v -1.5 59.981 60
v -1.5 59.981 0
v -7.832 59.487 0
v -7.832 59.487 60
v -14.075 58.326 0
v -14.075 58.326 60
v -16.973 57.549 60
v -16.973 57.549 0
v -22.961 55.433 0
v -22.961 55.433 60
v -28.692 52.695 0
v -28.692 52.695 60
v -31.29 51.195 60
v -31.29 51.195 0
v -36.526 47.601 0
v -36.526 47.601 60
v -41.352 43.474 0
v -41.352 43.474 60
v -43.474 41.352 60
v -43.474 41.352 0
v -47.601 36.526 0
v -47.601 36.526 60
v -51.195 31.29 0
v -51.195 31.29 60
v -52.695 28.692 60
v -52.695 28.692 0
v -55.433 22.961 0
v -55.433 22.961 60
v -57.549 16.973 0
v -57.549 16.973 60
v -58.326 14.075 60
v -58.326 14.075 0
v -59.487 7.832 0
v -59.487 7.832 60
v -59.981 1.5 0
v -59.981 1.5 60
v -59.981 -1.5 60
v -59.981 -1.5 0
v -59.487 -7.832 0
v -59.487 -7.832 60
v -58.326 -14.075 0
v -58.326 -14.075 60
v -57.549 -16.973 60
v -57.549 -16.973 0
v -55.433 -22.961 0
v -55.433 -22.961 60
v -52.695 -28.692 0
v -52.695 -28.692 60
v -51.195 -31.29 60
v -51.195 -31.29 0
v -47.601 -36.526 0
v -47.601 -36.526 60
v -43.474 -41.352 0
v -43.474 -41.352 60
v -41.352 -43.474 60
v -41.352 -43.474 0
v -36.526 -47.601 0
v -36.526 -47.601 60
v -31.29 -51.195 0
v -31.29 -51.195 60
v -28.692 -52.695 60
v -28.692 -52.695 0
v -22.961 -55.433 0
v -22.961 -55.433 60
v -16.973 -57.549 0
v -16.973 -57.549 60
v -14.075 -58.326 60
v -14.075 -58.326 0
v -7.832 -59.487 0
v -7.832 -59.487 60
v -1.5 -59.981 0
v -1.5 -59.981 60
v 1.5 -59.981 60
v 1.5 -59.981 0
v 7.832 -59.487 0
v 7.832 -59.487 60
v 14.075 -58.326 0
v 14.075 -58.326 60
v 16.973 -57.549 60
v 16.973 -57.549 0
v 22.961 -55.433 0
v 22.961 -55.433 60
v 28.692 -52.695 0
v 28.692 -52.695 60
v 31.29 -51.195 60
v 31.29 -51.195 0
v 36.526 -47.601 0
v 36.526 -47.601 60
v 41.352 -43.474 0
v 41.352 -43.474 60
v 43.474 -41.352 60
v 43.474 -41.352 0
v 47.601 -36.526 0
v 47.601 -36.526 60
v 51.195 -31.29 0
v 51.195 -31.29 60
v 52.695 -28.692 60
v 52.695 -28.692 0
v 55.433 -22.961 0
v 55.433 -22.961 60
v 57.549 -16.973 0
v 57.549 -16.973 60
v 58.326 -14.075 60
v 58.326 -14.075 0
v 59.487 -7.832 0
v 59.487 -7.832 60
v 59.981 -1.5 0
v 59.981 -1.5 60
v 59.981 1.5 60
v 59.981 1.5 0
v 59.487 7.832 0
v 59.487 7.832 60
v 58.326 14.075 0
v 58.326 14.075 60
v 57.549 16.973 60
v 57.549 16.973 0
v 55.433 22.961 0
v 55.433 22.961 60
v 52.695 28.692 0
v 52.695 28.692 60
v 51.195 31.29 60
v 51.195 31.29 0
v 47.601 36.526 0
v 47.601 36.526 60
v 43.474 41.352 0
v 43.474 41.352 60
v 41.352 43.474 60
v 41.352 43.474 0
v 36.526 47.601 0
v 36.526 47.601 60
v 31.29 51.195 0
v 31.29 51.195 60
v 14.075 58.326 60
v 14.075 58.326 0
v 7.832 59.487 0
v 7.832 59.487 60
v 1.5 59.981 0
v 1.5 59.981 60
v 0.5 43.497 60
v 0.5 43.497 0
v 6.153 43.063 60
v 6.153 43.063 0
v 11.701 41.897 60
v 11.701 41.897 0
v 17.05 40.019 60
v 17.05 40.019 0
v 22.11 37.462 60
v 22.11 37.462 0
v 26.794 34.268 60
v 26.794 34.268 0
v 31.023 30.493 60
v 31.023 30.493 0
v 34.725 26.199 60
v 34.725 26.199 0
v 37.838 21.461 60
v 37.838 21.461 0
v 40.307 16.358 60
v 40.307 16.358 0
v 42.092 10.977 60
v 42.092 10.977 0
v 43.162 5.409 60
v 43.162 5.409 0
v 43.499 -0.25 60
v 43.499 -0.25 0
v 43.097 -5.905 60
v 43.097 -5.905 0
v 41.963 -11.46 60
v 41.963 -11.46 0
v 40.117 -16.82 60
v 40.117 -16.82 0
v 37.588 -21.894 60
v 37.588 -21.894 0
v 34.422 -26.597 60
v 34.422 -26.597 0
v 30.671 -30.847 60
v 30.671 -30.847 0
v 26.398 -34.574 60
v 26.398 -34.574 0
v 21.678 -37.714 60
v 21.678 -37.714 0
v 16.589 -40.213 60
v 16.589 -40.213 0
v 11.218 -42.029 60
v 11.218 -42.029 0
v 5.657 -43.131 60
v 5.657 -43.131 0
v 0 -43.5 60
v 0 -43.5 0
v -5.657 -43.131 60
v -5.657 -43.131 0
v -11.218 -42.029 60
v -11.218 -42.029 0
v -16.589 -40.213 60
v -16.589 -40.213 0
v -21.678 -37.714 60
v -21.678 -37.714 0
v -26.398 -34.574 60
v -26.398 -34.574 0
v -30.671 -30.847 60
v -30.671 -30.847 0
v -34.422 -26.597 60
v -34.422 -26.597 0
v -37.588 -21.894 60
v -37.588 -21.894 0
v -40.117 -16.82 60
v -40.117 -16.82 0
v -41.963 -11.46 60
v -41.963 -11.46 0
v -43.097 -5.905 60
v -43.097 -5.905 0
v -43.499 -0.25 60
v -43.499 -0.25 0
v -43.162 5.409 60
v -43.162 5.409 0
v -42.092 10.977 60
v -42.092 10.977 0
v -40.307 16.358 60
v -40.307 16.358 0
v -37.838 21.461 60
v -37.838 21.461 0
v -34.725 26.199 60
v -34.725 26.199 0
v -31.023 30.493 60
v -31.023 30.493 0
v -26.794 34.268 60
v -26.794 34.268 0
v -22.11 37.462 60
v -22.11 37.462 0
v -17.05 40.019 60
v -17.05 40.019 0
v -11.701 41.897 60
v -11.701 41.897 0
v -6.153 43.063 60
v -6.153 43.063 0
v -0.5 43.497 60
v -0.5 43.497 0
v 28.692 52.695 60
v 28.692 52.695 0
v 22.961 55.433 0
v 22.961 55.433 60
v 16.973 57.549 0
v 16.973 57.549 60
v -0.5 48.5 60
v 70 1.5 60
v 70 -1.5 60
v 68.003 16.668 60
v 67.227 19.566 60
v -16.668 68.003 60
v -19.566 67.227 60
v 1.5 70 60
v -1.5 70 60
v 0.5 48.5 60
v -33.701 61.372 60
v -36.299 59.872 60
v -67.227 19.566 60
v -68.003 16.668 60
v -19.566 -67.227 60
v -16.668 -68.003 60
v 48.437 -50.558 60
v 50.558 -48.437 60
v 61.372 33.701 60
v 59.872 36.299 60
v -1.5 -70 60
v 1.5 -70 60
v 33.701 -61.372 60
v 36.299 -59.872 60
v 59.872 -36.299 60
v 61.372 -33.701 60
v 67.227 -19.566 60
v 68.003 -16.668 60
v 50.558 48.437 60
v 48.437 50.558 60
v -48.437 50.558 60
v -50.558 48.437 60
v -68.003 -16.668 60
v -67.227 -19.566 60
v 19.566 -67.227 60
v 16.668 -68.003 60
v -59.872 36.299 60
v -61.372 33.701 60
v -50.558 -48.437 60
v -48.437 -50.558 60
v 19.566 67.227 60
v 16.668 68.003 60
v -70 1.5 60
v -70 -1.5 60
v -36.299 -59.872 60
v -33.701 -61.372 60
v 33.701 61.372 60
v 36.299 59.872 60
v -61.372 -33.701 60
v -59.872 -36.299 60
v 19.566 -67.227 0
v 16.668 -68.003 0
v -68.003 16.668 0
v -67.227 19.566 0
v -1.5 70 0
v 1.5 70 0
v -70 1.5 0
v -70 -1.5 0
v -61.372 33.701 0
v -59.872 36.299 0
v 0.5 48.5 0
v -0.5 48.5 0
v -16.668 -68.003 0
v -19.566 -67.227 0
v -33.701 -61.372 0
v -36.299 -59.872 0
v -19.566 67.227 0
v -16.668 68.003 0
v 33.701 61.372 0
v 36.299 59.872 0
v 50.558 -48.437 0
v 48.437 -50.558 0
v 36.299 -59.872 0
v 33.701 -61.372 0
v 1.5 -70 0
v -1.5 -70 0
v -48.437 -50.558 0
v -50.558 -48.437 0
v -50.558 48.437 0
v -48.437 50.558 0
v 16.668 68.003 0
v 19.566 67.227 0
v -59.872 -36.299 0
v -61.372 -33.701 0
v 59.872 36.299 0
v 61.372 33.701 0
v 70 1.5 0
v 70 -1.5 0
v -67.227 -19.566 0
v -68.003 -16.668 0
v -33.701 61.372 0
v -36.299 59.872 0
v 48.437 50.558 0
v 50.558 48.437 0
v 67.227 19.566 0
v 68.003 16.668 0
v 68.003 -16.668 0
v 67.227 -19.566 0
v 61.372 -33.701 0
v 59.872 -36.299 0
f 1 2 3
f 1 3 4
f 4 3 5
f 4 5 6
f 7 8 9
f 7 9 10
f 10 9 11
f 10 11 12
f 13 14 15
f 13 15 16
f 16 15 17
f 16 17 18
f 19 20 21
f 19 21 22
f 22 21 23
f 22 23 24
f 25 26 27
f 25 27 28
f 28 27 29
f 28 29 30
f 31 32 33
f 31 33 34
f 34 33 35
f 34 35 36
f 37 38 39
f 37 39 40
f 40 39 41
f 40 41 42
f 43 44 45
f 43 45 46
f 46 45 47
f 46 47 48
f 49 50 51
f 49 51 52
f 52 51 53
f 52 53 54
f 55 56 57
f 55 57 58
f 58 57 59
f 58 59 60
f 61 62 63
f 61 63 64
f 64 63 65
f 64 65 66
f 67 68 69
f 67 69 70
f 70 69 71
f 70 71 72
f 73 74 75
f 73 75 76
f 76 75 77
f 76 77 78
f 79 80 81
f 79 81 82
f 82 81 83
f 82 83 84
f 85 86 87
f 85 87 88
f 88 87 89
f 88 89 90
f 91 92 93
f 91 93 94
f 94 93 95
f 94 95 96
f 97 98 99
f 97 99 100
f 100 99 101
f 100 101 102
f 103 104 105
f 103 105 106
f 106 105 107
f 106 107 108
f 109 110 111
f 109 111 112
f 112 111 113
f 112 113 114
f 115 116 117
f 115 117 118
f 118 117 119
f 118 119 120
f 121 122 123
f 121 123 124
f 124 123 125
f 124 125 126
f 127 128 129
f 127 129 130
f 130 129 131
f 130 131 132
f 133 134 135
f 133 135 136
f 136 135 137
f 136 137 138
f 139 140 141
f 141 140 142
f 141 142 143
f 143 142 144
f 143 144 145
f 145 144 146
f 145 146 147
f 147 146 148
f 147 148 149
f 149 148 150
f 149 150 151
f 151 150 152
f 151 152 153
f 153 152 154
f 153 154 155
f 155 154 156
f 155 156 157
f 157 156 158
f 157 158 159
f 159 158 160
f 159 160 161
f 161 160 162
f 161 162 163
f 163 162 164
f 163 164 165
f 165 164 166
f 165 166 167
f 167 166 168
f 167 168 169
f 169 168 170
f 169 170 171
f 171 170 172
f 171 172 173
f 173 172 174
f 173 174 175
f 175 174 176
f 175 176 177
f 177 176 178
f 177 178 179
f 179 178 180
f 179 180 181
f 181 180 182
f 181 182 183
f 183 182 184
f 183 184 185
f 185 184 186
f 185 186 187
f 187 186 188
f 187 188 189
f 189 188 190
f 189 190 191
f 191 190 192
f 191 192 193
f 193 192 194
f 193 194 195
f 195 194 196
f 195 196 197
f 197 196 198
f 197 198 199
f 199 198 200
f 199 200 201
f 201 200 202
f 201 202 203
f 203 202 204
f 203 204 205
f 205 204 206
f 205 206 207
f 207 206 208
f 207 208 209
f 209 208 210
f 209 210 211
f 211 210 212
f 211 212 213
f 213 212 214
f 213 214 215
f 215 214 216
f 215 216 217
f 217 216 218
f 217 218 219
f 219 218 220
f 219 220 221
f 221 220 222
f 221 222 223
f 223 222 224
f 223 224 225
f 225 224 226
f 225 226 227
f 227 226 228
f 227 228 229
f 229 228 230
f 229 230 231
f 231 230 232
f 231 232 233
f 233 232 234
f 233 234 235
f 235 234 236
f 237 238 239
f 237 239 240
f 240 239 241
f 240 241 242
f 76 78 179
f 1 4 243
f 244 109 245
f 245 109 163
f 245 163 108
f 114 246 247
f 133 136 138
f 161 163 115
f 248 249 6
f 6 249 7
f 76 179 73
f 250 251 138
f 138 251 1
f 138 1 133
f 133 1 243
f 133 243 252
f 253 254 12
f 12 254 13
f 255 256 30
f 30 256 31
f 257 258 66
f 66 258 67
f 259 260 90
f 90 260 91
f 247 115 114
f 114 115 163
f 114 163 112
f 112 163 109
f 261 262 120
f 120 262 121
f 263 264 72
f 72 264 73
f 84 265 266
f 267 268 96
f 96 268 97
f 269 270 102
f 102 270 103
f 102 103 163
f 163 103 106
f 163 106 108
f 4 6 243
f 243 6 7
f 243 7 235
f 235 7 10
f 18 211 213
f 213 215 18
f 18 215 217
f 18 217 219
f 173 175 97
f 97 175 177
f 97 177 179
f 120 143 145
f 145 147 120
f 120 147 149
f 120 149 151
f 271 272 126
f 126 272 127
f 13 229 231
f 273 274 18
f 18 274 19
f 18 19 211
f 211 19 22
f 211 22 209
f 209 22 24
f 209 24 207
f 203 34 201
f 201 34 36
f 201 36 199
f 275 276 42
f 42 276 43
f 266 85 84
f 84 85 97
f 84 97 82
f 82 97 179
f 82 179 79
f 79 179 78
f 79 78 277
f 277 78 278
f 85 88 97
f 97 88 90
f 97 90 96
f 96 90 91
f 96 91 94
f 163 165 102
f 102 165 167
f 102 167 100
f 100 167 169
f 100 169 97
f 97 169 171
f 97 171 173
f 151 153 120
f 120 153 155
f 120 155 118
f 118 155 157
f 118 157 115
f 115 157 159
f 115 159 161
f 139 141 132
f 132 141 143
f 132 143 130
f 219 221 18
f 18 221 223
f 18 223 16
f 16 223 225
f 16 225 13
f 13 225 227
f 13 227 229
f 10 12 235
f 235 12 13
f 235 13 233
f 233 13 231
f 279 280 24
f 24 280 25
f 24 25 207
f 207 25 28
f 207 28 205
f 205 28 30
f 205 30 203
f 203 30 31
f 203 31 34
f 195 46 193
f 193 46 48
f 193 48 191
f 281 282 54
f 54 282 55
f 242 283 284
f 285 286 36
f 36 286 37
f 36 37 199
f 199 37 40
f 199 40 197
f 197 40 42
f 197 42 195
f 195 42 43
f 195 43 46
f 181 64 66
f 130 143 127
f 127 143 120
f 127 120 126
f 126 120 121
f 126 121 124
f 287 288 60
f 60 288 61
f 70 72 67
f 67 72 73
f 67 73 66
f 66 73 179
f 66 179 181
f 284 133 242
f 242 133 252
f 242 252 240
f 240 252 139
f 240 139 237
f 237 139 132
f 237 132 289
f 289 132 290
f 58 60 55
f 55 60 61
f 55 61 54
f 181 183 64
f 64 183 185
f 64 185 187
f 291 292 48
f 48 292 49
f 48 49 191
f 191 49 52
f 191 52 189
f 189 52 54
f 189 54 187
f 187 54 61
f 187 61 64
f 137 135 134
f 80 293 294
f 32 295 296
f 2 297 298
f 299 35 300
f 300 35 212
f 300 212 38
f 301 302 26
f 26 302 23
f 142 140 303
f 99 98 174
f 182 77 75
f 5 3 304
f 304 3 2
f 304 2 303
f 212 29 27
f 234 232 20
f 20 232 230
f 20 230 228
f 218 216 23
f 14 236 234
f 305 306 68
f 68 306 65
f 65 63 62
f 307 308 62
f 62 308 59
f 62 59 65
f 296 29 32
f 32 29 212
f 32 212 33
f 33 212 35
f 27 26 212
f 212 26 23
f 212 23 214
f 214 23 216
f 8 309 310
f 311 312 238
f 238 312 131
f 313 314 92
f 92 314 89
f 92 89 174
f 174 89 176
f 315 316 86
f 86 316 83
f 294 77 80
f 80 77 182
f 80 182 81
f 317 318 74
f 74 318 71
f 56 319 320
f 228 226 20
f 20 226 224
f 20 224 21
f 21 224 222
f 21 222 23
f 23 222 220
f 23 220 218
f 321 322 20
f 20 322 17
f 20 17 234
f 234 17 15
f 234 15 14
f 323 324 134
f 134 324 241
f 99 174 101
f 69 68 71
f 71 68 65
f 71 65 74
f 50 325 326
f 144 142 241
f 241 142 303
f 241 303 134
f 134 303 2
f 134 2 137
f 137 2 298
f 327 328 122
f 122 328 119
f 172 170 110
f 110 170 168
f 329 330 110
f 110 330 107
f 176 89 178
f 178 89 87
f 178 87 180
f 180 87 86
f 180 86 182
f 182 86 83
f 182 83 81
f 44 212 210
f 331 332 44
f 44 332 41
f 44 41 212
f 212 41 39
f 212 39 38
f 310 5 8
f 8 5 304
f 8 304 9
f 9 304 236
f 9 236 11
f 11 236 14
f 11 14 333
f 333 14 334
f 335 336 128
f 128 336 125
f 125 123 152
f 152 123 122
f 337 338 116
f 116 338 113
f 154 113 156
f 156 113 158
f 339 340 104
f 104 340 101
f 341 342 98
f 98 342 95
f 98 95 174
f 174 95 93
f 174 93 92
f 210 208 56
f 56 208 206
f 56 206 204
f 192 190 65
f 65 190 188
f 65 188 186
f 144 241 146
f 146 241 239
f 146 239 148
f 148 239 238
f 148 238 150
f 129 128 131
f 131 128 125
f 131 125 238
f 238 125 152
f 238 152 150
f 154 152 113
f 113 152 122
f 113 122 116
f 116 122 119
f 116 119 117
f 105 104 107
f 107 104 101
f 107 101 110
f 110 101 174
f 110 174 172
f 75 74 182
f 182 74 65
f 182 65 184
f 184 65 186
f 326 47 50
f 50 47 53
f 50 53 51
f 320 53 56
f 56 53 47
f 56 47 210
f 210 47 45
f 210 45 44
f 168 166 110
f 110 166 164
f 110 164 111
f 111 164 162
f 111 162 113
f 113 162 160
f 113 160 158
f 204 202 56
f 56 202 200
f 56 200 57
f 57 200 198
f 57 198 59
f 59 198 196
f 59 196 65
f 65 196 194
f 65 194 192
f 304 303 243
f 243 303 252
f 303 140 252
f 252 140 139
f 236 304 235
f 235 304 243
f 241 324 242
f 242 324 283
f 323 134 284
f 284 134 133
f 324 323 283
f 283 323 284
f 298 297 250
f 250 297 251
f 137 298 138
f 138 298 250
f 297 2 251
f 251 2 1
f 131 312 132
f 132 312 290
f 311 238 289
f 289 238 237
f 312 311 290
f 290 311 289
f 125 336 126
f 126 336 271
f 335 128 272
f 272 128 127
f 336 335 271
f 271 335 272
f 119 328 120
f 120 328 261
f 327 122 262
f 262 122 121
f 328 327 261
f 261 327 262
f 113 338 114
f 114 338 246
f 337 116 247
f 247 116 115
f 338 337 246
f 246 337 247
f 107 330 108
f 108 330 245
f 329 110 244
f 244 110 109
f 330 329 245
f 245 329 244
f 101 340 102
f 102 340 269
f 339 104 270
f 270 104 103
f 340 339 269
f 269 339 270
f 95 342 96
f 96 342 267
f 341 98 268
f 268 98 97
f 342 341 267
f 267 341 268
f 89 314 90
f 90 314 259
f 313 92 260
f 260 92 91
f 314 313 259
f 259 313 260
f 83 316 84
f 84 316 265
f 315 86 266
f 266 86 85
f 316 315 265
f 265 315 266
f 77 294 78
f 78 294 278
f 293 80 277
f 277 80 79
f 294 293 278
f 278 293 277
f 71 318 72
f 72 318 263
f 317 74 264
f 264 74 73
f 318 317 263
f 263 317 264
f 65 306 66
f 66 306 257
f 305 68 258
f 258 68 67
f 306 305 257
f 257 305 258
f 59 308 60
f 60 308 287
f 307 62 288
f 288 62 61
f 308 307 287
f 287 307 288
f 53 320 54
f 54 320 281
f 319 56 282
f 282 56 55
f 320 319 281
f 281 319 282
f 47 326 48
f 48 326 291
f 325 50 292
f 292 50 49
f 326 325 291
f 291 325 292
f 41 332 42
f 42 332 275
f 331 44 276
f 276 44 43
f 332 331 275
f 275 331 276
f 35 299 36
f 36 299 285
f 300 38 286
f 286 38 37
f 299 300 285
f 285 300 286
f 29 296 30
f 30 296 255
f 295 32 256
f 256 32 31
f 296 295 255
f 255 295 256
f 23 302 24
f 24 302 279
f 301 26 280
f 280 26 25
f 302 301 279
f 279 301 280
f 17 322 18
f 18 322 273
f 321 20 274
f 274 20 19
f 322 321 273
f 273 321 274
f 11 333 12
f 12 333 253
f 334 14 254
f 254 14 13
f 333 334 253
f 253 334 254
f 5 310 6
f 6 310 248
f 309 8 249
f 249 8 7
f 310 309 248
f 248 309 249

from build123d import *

# Parameters (mm, degrees)
SKETCH1_R           = 60
SKETCH1_R_2         = 43.5
EXTRUSION1_DEPTH    = 60
EXTRUSION3_START    = -60
EXTRUSION3_DEPTH    = 60
BOSS_EXTRUDE2_START = -60
BOSS_EXTRUDE2_DEPTH = 60


with BuildPart() as part:
    # Sketch1 → Extrusion1 (new body)
    with BuildSketch(Plane.XY):
        Circle(SKETCH1_R)
        Circle(SKETCH1_R_2, mode=Mode.SUBTRACT)
    extrude(amount=EXTRUSION1_DEPTH)

    # Sketch3 → Extrusion3 (cut)
    with BuildSketch(Plane.XY.offset(60).offset(EXTRUSION3_START)):
        with BuildLine():
            Line((-0.5, 48.5), (-0.5, 43.497126342))
            ThreePointArc((-0.5, 43.497126342), (0, 43.5), (0.5, 43.497126342))
            Line((0.5, 43.497126342), (0.5, 48.5))
            Line((0.5, 48.5), (-0.5, 48.5))
        make_face()
    extrude(amount=EXTRUSION3_DEPTH, mode=Mode.SUBTRACT)

    # Sketch5 → Boss-Extrude2 (add)
    with BuildSketch(Plane.XY.offset(60).offset(BOSS_EXTRUDE2_START)):
        with BuildLine():
            Line((14.075400351, 58.325664205), (16.668444418, 68.003036408))
            Line((16.668444418, 68.003036408), (19.566221897, 67.226579273))
            Line((19.566221897, 67.226579273), (16.97317783, 57.54920707))
            ThreePointArc((16.97317783, 57.54920707), (15.529142706, 57.955549577), (14.075400351, 58.325664205))
        make_face()
        with BuildLine():
            Line((1.5, 59.981247069), (1.5, 70))
            Line((1.5, 70), (-1.5, 70))
            Line((-1.5, 70), (-1.5, 59.981247069))
            ThreePointArc((-1.5, 59.981247069), (0, 60), (1.5, 59.981247069))
        make_face()
        with BuildLine():
            Line((28.691585429, 52.695283713), (33.700961894, 61.371778265))
            Line((33.700961894, 61.371778265), (36.299038106, 59.871778265))
            Line((36.299038106, 59.871778265), (31.28966164, 51.195283713))
            ThreePointArc((31.28966164, 51.195283713), (30, 51.961524227), (28.691585429, 52.695283713))
        make_face()
        with BuildLine():
            Line((41.352486375, 43.473806719), (48.436814511, 50.558134855))
            Line((48.436814511, 50.558134855), (50.558134855, 48.436814511))
            Line((50.558134855, 48.436814511), (43.473806719, 41.352486375))
            ThreePointArc((43.473806719, 41.352486375), (42.426406871, 42.426406871), (41.352486375, 43.473806719))
        make_face()
        with BuildLine():
            Line((51.195283713, 31.28966164), (59.871778265, 36.299038106))
            Line((59.871778265, 36.299038106), (61.371778265, 33.700961894))
            Line((61.371778265, 33.700961894), (52.695283713, 28.691585429))
            ThreePointArc((52.695283713, 28.691585429), (51.961524227, 30), (51.195283713, 31.28966164))
        make_face()
        with BuildLine():
            Line((57.54920707, 16.97317783), (67.226579273, 19.566221897))
            Line((67.226579273, 19.566221897), (68.003036408, 16.668444418))
            Line((68.003036408, 16.668444418), (58.325664205, 14.075400351))
            ThreePointArc((58.325664205, 14.075400351), (57.955549577, 15.529142706), (57.54920707, 16.97317783))
        make_face()
        with BuildLine():
            Line((59.981247069, 1.5), (70, 1.5))
            Line((70, 1.5), (70, -1.5))
            Line((70, -1.5), (59.981247069, -1.5))
            ThreePointArc((59.981247069, -1.5), (60, 0), (59.981247069, 1.5))
        make_face()
        with BuildLine():
            Line((58.325664205, -14.075400351), (68.003036408, -16.668444418))
            Line((68.003036408, -16.668444418), (67.226579273, -19.566221897))
            Line((67.226579273, -19.566221897), (57.54920707, -16.97317783))
            ThreePointArc((57.54920707, -16.97317783), (57.955549577, -15.529142706), (58.325664205, -14.075400351))
        make_face()
        with BuildLine():
            Line((52.695283713, -28.691585429), (61.371778265, -33.700961894))
            Line((61.371778265, -33.700961894), (59.871778265, -36.299038106))
            Line((59.871778265, -36.299038106), (51.195283713, -31.28966164))
            ThreePointArc((51.195283713, -31.28966164), (51.961524227, -30), (52.695283713, -28.691585429))
        make_face()
        with BuildLine():
            Line((43.473806719, -41.352486375), (50.558134855, -48.436814511))
            Line((50.558134855, -48.436814511), (48.436814511, -50.558134855))
            Line((48.436814511, -50.558134855), (41.352486375, -43.473806719))
            ThreePointArc((41.352486375, -43.473806719), (42.426406871, -42.426406871), (43.473806719, -41.352486375))
        make_face()
        with BuildLine():
            Line((31.28966164, -51.195283713), (36.299038106, -59.871778265))
            Line((36.299038106, -59.871778265), (33.700961894, -61.371778265))
            Line((33.700961894, -61.371778265), (28.691585429, -52.695283713))
            ThreePointArc((28.691585429, -52.695283713), (30, -51.961524227), (31.28966164, -51.195283713))
        make_face()
        with BuildLine():
            Line((16.97317783, -57.54920707), (19.566221897, -67.226579273))
            Line((19.566221897, -67.226579273), (16.668444418, -68.003036408))
            Line((16.668444418, -68.003036408), (14.075400351, -58.325664205))
            ThreePointArc((14.075400351, -58.325664205), (15.529142706, -57.955549577), (16.97317783, -57.54920707))
        make_face()
        with BuildLine():
            Line((1.5, -59.981247069), (1.5, -70))
            Line((1.5, -70), (-1.5, -70))
            Line((-1.5, -70), (-1.5, -59.981247069))
            ThreePointArc((-1.5, -59.981247069), (0, -60), (1.5, -59.981247069))
        make_face()
        with BuildLine():
            Line((-14.075400351, -58.325664205), (-16.668444418, -68.003036408))
            Line((-16.668444418, -68.003036408), (-19.566221897, -67.226579273))
            Line((-19.566221897, -67.226579273), (-16.97317783, -57.54920707))
            ThreePointArc((-16.97317783, -57.54920707), (-15.529142706, -57.955549577), (-14.075400351, -58.325664205))
        make_face()
        with BuildLine():
            Line((-28.691585429, -52.695283713), (-33.700961894, -61.371778265))
            Line((-33.700961894, -61.371778265), (-36.299038106, -59.871778265))
            Line((-36.299038106, -59.871778265), (-31.28966164, -51.195283713))
            ThreePointArc((-31.28966164, -51.195283713), (-30, -51.961524227), (-28.691585429, -52.695283713))
        make_face()
        with BuildLine():
            Line((-41.352486375, -43.473806719), (-48.436814511, -50.558134855))
            Line((-48.436814511, -50.558134855), (-50.558134855, -48.436814511))
            Line((-50.558134855, -48.436814511), (-43.473806719, -41.352486375))
            ThreePointArc((-43.473806719, -41.352486375), (-42.426406871, -42.426406871), (-41.352486375, -43.473806719))
        make_face()
        with BuildLine():
            Line((-51.195283713, -31.28966164), (-59.871778265, -36.299038106))
            Line((-59.871778265, -36.299038106), (-61.371778265, -33.700961894))
            Line((-61.371778265, -33.700961894), (-52.695283713, -28.691585429))
            ThreePointArc((-52.695283713, -28.691585429), (-51.961524227, -30), (-51.195283713, -31.28966164))
        make_face()
        with BuildLine():
            Line((-57.54920707, -16.97317783), (-67.226579273, -19.566221897))
            Line((-67.226579273, -19.566221897), (-68.003036408, -16.668444418))
            Line((-68.003036408, -16.668444418), (-58.325664205, -14.075400351))
            ThreePointArc((-58.325664205, -14.075400351), (-57.955549577, -15.529142706), (-57.54920707, -16.97317783))
        make_face()
        with BuildLine():
            Line((-59.981247069, -1.5), (-70, -1.5))
            Line((-70, -1.5), (-70, 1.5))
            Line((-70, 1.5), (-59.981247069, 1.5))
            ThreePointArc((-59.981247069, 1.5), (-60, 0), (-59.981247069, -1.5))
        make_face()
        with BuildLine():
            Line((-58.325664205, 14.075400351), (-68.003036408, 16.668444418))
            Line((-68.003036408, 16.668444418), (-67.226579273, 19.566221897))
            Line((-67.226579273, 19.566221897), (-57.54920707, 16.97317783))
            ThreePointArc((-57.54920707, 16.97317783), (-57.955549577, 15.529142706), (-58.325664205, 14.075400351))
        make_face()
        with BuildLine():
            Line((-52.695283713, 28.691585429), (-61.371778265, 33.700961894))
            Line((-61.371778265, 33.700961894), (-59.871778265, 36.299038106))
            Line((-59.871778265, 36.299038106), (-51.195283713, 31.28966164))
            ThreePointArc((-51.195283713, 31.28966164), (-51.961524227, 30), (-52.695283713, 28.691585429))
        make_face()
        with BuildLine():
            Line((-43.473806719, 41.352486375), (-50.558134855, 48.436814511))
            Line((-50.558134855, 48.436814511), (-48.436814511, 50.558134855))
            Line((-48.436814511, 50.558134855), (-41.352486375, 43.473806719))
            ThreePointArc((-41.352486375, 43.473806719), (-42.426406871, 42.426406871), (-43.473806719, 41.352486375))
        make_face()
        with BuildLine():
            Line((-31.28966164, 51.195283713), (-36.299038106, 59.871778265))
            Line((-36.299038106, 59.871778265), (-33.700961894, 61.371778265))
            Line((-33.700961894, 61.371778265), (-28.691585429, 52.695283713))
            ThreePointArc((-28.691585429, 52.695283713), (-30, 51.961524227), (-31.28966164, 51.195283713))
        make_face()
        with BuildLine():
            Line((-16.97317783, 57.54920707), (-19.566221897, 67.226579273))
            Line((-19.566221897, 67.226579273), (-16.668444418, 68.003036408))
            Line((-16.668444418, 68.003036408), (-14.075400351, 58.325664205))
            ThreePointArc((-14.075400351, 58.325664205), (-15.529142706, 57.955549577), (-16.97317783, 57.54920707))
        make_face()
    extrude(amount=BOSS_EXTRUDE2_DEPTH)


solid = part.part
